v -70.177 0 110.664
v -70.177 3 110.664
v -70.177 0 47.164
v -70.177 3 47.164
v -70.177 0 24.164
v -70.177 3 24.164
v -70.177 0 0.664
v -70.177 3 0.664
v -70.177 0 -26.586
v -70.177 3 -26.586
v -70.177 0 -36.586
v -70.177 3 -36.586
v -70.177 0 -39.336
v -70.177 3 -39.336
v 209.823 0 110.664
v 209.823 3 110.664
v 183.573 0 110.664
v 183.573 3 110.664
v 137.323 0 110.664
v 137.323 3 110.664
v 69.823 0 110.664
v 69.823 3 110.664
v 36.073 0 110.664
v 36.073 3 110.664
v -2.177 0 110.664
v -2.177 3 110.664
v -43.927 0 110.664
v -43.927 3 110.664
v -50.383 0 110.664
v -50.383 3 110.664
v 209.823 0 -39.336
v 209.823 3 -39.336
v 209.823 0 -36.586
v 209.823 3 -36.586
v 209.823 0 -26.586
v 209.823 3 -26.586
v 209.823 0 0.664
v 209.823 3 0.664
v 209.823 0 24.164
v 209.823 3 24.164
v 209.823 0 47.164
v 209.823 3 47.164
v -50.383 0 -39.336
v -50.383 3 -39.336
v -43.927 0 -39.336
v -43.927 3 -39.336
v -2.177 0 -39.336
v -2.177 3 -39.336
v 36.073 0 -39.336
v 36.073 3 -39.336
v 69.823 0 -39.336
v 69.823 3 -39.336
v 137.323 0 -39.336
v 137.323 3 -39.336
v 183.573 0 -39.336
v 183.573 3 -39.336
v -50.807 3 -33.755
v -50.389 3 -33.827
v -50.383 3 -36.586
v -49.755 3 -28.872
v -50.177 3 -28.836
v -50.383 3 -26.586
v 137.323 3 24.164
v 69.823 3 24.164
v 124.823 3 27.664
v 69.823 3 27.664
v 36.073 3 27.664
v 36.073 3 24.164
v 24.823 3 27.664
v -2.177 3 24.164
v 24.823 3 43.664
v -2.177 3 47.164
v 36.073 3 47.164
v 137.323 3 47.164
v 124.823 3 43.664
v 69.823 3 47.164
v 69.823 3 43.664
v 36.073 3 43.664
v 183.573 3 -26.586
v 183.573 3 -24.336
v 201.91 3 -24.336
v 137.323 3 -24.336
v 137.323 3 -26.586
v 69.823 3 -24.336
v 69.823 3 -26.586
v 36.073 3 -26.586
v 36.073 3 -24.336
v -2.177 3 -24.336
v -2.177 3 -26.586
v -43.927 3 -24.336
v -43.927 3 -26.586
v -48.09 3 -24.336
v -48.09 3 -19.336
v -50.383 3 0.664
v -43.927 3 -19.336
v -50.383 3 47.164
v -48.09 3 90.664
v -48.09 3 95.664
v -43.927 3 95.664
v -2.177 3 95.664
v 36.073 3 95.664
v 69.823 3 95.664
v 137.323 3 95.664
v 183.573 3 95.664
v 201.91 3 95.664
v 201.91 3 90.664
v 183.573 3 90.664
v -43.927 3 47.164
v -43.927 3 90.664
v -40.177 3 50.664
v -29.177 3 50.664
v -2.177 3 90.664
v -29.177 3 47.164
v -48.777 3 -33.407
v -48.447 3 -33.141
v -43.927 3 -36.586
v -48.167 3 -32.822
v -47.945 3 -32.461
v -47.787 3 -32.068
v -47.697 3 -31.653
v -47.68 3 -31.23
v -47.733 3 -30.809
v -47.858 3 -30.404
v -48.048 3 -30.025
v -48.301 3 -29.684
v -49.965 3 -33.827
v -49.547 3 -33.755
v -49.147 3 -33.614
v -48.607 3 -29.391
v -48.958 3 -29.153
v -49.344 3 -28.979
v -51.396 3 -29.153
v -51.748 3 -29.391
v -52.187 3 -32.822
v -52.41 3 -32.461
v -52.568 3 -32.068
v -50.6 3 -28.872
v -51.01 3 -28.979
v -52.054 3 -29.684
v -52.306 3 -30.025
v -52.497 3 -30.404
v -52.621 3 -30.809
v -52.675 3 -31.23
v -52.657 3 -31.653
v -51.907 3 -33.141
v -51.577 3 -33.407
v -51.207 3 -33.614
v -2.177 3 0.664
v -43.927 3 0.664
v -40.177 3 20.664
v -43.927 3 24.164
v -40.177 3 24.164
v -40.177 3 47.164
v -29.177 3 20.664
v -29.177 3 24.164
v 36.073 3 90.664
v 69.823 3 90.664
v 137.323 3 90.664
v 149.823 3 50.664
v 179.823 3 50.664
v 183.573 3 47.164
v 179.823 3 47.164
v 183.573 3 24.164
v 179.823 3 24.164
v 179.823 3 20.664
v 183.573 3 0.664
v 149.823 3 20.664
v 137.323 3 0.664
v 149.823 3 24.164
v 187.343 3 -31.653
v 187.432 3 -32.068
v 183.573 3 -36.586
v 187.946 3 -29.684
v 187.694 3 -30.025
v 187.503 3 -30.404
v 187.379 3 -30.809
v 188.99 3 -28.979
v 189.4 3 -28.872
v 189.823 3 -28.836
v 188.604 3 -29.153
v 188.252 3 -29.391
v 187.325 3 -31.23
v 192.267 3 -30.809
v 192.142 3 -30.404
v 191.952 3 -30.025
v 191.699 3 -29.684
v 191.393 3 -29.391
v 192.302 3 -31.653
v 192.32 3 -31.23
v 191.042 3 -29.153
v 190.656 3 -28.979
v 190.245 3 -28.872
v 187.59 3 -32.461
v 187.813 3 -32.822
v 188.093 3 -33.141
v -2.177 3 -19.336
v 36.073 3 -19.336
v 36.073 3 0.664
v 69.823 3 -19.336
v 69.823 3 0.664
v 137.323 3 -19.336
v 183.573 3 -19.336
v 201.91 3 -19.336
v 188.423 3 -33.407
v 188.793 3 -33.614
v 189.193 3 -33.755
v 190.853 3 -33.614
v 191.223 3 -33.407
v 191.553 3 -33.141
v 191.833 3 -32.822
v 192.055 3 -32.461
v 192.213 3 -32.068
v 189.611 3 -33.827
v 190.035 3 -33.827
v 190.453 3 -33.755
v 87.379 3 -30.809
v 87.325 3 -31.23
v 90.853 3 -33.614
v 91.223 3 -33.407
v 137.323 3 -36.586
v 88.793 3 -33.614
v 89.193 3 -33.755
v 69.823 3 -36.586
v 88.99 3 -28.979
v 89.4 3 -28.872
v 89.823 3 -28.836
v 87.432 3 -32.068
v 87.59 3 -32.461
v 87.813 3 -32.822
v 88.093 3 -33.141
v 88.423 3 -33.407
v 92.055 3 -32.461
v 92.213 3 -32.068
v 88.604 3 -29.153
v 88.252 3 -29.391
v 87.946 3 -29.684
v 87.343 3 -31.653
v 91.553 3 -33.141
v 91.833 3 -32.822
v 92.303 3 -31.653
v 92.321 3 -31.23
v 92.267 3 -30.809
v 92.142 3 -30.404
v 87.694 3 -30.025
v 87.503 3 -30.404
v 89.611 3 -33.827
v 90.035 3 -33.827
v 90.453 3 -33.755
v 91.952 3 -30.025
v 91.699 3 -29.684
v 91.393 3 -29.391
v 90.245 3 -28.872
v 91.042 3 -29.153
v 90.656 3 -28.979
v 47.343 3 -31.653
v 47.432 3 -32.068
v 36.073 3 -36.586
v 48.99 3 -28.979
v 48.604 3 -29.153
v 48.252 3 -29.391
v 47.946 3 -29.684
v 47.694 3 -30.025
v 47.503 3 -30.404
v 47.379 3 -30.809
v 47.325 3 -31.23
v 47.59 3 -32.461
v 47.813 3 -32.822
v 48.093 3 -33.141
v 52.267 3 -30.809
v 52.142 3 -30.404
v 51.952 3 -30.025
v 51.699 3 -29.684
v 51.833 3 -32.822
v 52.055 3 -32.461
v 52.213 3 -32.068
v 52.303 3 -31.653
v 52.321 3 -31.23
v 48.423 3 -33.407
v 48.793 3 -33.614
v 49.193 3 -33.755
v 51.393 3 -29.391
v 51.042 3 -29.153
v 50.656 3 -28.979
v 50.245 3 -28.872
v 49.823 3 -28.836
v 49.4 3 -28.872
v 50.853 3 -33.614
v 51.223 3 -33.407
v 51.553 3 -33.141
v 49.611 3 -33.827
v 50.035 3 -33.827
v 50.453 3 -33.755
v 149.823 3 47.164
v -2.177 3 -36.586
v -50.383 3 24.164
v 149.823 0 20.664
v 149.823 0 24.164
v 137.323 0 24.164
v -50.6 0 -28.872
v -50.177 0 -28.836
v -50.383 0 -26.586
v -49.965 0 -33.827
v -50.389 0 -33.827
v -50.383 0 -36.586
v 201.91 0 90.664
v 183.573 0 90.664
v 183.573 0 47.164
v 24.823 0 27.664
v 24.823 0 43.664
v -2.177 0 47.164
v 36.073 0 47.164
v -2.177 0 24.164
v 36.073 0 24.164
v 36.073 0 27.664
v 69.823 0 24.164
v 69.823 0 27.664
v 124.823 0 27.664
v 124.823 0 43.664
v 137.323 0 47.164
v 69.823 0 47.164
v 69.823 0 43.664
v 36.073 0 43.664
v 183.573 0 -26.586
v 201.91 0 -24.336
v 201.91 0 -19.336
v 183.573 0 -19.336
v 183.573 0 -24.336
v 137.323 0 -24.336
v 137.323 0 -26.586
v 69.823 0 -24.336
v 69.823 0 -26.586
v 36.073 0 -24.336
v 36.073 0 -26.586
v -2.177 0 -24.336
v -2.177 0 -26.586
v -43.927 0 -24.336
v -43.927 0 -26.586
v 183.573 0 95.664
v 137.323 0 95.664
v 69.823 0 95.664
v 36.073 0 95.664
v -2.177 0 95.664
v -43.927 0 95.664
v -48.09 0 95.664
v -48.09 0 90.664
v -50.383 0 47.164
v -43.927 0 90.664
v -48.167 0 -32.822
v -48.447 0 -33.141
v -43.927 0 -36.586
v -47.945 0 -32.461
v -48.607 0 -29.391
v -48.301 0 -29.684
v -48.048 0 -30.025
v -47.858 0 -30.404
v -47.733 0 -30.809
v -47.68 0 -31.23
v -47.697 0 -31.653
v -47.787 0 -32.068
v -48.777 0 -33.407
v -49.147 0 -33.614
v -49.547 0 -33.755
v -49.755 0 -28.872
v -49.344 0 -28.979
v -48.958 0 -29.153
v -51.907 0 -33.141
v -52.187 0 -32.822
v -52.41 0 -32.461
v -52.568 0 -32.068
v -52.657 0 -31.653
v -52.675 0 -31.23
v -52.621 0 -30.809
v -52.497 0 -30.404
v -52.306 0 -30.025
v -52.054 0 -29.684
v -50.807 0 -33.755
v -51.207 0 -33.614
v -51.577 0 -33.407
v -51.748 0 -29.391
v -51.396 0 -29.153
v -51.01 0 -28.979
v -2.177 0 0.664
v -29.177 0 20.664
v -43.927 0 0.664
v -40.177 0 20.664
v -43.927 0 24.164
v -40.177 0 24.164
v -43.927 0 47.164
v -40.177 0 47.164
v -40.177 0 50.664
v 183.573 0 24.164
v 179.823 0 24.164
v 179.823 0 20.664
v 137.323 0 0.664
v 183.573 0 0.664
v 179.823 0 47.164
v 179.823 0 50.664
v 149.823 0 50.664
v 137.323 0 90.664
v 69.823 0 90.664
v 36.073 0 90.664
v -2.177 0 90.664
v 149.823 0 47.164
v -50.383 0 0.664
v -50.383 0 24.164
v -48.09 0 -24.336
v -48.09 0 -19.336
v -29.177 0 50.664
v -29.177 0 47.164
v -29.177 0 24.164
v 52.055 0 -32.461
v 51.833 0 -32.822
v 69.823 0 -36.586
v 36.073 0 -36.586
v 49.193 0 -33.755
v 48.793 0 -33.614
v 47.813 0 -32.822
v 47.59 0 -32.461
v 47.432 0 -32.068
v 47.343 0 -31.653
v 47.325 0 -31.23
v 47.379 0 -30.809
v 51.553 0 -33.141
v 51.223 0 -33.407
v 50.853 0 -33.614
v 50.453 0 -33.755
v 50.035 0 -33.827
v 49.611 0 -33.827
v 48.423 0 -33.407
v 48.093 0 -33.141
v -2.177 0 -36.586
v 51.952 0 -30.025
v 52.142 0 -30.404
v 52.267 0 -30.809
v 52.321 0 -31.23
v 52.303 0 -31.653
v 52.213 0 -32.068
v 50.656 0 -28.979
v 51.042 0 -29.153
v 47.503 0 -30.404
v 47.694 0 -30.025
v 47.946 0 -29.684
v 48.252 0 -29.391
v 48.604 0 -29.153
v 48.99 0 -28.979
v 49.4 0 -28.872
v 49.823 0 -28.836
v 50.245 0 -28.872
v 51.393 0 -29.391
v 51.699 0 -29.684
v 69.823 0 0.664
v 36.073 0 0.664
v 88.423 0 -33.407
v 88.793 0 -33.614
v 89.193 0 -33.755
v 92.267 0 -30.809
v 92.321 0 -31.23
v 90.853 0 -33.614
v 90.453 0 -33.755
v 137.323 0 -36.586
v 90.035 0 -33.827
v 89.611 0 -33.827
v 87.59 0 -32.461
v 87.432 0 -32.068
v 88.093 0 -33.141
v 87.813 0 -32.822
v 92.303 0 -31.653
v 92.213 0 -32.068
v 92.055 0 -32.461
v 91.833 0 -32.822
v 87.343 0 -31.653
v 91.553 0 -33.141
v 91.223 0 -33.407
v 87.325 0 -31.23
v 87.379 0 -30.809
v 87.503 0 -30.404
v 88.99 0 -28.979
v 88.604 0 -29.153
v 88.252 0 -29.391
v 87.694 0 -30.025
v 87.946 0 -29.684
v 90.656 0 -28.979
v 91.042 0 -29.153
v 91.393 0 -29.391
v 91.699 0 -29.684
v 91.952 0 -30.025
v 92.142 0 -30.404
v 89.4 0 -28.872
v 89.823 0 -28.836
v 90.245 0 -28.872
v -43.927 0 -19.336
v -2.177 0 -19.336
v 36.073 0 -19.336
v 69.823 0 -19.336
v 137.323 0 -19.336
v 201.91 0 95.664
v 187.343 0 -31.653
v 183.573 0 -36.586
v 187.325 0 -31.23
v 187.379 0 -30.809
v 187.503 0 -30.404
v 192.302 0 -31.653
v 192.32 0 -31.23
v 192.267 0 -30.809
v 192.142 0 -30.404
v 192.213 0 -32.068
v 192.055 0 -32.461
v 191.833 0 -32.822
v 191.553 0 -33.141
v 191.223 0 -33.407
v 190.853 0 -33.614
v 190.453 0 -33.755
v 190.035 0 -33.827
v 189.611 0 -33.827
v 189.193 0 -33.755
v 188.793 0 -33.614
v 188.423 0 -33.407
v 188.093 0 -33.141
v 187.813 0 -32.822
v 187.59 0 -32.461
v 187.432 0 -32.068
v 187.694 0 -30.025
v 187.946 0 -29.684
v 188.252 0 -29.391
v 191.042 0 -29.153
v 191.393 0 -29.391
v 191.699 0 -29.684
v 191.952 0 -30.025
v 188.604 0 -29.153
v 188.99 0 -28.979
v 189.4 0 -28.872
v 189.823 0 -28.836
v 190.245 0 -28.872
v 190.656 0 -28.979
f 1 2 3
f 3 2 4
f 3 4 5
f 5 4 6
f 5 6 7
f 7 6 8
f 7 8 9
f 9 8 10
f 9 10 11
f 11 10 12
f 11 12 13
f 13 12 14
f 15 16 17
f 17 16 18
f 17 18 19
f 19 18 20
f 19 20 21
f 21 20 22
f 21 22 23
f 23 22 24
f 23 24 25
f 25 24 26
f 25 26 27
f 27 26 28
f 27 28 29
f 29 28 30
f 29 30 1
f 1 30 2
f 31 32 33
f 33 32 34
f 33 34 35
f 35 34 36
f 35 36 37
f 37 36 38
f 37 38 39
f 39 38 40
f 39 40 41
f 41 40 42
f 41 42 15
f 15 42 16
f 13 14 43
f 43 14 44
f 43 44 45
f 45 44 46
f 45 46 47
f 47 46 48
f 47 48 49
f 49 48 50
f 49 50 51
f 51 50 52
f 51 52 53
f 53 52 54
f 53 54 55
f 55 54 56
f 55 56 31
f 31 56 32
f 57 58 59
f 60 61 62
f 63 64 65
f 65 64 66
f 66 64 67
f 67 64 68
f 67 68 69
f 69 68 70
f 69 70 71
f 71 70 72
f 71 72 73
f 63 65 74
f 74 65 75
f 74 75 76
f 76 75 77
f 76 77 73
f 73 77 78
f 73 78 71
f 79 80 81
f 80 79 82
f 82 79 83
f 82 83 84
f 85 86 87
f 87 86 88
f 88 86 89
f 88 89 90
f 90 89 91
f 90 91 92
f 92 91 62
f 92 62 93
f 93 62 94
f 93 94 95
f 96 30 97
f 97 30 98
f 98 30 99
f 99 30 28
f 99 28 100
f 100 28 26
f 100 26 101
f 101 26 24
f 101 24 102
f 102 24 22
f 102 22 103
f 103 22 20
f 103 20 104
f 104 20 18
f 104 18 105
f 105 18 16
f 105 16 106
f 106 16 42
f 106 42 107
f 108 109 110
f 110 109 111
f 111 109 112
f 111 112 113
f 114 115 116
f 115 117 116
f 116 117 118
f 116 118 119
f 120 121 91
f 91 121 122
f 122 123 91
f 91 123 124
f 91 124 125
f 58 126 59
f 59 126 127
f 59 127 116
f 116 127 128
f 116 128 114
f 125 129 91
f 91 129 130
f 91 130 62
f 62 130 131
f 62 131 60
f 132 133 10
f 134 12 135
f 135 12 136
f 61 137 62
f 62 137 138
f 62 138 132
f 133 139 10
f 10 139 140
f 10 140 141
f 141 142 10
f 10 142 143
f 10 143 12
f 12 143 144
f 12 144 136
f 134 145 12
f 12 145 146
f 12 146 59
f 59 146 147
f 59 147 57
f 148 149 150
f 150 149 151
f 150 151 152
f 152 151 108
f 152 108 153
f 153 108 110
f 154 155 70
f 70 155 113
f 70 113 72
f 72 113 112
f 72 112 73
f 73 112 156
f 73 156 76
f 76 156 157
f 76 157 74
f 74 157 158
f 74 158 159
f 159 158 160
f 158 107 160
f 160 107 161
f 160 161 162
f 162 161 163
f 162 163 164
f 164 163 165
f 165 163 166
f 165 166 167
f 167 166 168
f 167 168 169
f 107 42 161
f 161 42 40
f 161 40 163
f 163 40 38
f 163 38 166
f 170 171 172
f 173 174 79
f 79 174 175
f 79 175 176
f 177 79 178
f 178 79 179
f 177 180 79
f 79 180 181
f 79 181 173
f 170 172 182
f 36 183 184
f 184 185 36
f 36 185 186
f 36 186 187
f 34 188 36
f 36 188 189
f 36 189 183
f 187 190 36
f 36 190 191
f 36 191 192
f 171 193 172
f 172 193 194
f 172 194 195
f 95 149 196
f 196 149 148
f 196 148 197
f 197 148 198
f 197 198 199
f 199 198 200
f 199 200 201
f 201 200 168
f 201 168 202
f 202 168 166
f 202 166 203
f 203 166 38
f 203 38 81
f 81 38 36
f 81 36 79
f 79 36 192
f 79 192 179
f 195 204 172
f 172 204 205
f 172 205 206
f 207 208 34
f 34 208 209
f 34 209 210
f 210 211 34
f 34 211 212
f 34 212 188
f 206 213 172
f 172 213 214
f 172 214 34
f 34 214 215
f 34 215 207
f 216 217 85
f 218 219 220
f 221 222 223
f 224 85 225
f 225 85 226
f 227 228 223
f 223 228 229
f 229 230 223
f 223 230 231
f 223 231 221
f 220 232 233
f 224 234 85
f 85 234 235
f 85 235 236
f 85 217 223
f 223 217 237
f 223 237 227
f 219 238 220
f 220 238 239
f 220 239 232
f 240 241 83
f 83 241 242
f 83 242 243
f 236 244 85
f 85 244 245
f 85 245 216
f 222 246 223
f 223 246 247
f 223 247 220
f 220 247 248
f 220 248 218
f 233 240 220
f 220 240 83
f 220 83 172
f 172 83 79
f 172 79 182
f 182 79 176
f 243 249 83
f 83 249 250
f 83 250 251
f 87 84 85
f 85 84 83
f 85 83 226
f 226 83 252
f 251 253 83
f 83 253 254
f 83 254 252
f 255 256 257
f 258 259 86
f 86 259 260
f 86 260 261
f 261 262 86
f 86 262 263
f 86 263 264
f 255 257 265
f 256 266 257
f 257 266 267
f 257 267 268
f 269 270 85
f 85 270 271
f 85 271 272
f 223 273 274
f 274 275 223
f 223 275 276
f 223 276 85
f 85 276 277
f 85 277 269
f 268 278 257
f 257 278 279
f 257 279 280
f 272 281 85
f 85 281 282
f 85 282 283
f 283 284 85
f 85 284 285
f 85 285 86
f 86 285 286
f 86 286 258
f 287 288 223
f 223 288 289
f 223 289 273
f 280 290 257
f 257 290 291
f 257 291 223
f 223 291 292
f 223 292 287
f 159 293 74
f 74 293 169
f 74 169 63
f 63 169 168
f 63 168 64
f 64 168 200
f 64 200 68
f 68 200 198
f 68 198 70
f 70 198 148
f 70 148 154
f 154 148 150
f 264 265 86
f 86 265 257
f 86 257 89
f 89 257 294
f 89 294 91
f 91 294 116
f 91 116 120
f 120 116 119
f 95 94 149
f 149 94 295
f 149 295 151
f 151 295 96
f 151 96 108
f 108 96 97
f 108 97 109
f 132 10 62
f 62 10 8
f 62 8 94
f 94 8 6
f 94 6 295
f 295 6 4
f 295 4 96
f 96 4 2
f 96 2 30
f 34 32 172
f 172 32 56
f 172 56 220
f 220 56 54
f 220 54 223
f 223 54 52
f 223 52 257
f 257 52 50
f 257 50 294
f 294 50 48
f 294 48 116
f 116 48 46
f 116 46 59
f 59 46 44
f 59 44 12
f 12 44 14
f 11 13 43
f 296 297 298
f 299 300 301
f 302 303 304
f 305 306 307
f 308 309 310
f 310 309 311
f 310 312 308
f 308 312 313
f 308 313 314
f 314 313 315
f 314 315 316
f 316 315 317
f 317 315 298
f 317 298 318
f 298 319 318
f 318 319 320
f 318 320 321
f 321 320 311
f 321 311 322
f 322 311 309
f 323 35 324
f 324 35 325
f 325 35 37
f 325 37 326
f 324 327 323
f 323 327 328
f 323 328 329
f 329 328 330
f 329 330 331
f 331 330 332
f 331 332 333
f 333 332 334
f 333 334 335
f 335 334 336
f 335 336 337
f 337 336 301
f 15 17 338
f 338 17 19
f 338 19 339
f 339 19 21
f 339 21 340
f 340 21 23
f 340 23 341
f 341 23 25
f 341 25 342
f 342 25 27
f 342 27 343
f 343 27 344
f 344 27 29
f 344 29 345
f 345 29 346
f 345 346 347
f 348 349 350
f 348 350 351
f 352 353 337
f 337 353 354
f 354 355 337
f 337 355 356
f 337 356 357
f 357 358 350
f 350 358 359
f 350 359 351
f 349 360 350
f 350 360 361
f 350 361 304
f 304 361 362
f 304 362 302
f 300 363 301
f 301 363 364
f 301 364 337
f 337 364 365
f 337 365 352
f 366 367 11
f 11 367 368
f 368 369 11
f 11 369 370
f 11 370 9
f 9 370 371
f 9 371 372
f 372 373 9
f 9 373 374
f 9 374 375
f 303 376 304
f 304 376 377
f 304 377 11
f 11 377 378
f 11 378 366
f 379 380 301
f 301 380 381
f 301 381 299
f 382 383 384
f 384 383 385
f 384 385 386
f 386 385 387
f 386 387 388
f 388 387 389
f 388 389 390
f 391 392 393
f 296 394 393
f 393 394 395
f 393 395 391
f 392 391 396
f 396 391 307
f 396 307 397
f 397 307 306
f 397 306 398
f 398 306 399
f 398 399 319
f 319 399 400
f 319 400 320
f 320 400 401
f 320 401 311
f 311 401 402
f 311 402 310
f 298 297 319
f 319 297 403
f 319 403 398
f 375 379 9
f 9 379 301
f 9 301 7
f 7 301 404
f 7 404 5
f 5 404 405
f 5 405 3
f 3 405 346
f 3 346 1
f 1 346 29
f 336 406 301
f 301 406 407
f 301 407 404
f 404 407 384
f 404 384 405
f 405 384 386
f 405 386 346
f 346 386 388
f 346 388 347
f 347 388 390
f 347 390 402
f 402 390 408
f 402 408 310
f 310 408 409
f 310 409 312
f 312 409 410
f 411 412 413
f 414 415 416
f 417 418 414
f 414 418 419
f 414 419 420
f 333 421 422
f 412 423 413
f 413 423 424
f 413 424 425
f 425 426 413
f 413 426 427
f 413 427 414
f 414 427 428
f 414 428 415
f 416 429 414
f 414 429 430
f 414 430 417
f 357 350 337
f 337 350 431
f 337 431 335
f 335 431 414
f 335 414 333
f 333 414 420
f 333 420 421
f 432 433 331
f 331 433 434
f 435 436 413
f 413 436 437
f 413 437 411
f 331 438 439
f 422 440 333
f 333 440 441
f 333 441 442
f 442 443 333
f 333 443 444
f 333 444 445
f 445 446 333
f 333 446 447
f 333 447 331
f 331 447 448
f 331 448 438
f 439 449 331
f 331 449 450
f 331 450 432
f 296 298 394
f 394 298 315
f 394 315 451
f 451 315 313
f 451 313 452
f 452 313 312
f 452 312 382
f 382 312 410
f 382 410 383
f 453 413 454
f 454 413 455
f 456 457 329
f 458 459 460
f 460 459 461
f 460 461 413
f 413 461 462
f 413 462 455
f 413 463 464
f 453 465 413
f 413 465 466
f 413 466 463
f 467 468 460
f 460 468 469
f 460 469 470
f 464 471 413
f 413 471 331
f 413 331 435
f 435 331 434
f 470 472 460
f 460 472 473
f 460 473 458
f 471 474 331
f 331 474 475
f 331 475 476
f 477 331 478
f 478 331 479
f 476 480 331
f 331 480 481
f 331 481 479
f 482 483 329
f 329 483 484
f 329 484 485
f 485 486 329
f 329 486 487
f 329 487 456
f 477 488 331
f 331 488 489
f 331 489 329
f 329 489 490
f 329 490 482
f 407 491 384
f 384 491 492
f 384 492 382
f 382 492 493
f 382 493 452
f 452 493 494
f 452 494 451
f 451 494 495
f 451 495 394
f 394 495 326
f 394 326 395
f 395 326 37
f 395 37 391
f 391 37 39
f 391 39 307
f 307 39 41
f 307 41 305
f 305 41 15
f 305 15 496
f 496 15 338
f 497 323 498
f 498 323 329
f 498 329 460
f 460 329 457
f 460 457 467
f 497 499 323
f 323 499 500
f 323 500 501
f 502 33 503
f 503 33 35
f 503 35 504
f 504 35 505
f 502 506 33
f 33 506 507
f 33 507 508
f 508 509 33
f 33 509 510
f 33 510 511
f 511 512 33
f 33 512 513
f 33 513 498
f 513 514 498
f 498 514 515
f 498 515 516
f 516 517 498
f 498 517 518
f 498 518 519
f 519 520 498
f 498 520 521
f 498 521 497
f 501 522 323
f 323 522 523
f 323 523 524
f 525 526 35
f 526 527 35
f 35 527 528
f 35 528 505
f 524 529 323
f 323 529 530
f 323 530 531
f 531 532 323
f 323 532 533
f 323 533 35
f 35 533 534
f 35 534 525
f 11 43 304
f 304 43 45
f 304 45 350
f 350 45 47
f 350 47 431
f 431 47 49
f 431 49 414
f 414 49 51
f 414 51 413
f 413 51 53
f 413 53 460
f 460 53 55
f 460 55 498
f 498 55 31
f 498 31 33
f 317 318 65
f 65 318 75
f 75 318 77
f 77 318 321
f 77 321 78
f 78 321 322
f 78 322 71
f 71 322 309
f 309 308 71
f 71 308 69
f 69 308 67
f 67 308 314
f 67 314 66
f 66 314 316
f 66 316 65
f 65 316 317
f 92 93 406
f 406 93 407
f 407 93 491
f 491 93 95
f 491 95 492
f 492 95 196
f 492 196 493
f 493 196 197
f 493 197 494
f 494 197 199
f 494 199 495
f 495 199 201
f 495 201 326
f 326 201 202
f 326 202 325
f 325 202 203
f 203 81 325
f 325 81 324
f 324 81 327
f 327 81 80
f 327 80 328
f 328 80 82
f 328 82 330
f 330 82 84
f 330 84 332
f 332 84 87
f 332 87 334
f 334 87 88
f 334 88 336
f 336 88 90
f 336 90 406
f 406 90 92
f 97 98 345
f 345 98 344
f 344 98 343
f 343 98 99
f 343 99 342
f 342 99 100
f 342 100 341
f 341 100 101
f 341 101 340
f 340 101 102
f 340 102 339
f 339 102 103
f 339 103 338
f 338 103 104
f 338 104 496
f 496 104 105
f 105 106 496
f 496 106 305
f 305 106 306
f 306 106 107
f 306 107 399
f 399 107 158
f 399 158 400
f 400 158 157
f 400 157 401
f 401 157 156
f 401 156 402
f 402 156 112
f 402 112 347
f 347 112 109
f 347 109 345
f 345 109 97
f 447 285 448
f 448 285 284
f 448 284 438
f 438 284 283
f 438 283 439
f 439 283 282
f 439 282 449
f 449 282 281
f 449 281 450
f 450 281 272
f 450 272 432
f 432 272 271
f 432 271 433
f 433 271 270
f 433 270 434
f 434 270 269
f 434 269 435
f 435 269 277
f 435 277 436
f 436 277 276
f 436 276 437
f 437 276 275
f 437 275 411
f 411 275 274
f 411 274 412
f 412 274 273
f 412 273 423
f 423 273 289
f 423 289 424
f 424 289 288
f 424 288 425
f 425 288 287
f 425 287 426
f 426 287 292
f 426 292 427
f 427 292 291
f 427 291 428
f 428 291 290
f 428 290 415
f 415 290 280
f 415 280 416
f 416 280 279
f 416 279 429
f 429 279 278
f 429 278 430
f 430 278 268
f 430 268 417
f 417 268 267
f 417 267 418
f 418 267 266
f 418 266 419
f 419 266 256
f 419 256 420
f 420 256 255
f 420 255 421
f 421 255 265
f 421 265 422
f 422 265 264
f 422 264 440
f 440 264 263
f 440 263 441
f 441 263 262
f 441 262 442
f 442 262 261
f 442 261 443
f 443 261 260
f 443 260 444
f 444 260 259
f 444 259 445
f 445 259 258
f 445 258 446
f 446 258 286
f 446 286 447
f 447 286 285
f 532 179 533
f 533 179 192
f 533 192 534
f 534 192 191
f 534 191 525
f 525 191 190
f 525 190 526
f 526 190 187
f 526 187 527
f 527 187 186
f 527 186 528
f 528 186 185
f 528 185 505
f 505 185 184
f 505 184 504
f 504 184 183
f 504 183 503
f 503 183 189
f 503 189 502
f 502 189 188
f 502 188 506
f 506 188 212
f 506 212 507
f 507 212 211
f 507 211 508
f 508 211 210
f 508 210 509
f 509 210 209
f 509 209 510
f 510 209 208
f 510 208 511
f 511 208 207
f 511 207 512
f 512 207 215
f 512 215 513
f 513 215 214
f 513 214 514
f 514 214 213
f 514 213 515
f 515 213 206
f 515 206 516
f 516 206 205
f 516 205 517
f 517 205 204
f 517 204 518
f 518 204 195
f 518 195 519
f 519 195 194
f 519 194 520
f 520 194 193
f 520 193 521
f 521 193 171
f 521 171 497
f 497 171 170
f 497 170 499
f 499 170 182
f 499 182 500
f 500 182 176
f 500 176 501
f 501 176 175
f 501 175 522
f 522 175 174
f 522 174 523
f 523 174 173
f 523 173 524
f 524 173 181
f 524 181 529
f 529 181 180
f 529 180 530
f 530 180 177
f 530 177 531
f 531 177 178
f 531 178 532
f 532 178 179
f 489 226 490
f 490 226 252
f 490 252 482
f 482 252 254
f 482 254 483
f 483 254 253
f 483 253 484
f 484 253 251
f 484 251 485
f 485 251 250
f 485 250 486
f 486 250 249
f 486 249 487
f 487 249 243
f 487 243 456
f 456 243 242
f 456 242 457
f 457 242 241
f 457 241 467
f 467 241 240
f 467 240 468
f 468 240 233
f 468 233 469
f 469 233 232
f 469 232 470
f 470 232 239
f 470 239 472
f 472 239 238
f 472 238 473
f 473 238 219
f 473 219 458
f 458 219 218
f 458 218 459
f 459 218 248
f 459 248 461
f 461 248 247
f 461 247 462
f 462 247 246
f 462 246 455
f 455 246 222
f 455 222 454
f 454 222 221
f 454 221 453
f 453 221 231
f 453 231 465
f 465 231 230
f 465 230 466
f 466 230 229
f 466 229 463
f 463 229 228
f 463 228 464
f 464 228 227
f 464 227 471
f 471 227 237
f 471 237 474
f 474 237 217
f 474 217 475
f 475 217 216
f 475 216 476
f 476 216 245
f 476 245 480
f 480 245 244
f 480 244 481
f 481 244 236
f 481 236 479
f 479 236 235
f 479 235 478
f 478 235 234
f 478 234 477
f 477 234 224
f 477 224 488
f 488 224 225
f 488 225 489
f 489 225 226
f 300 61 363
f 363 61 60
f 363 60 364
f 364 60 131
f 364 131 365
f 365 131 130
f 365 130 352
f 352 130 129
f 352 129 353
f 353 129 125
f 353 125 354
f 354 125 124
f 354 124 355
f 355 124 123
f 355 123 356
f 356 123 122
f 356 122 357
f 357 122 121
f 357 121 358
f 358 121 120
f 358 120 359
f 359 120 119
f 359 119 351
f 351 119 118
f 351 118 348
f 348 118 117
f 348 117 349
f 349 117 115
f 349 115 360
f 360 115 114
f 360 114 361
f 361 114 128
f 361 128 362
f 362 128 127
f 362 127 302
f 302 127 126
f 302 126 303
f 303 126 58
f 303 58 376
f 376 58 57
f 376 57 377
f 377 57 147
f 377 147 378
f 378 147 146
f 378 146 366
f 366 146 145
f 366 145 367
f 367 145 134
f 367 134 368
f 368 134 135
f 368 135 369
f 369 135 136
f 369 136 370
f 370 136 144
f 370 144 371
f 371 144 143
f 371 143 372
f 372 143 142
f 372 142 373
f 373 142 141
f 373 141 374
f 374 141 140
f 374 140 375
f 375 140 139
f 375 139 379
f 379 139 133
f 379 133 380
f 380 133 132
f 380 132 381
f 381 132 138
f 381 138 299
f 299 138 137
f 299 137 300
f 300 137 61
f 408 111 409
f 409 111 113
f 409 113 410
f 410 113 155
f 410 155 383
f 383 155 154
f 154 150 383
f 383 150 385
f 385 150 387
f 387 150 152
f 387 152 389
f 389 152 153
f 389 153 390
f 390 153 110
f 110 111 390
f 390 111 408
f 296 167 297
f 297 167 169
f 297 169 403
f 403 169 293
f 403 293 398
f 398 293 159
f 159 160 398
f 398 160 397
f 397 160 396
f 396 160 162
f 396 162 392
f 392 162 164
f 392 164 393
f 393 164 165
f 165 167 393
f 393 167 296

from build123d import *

# Parameters (mm, degrees)
SKETCH_1_W          = 280
SKETCH_1_H          = 150
EXTRUDE_1_DEPTH     = 3
SKETCH_2_W          = 100
SKETCH_2_H          = 16
CUT_EXTRUDE_1_DEPTH = 3
SKETCH_3_W          = 250
SKETCH_3_H          = 5
CUT_EXTRUDE_2_DEPTH = 3
SKETCH_4_R          = 2.5
CUT_EXTRUDE_3_DEPTH = 3
SKETCH_5_W          = 30
SKETCH_5_H          = 30
SKETCH_5_W_2        = 11
CUT_EXTRUDE_4_DEPTH = 3


with BuildPart() as part:
    # 草图1 → 凸台-拉伸1 (new body)
    with BuildSketch(Plane(origin=(0, 0, 0), x_dir=(1, 0, 0), z_dir=(0, 1, 0))):
        with Locations((69.822750754, -35.664148933)):
            Rectangle(SKETCH_1_W, SKETCH_1_H)
    extrude(amount=EXTRUDE_1_DEPTH)

    # 草图2 → 切除-拉伸1 (cut)
    with BuildSketch(Plane(origin=(0, 3, 0), x_dir=(1, 0, 0), z_dir=(0, 1, 0))):
        with Locations((74.822750754, -35.664148933)):
            Rectangle(SKETCH_2_W, SKETCH_2_H)
    extrude(amount=-CUT_EXTRUDE_1_DEPTH, mode=Mode.SUBTRACT)

    # 草图3 → 切除-拉伸2 (cut)
    with BuildSketch(Plane.XZ):
        with Locations((76.910352346, 93.164148933)):
            Rectangle(SKETCH_3_W, SKETCH_3_H)
        with Locations((76.910352346, -21.835851067)):
            Rectangle(SKETCH_3_W, SKETCH_3_H)
    extrude(amount=-CUT_EXTRUDE_2_DEPTH, mode=Mode.SUBTRACT)

    # 草图4 → 切除-拉伸3 (cut)
    with BuildSketch(Plane(origin=(0, 3, 0), x_dir=(1, 0, 0), z_dir=(0, 1, 0))):
        with Locations(Location((-50.177249246, 31.335851067, 0), (0, 0, 270))):
            Circle(SKETCH_4_R)
        with Locations(Location((49.822750754, 31.335851067, 0), (0, 0, 270))):
            Circle(SKETCH_4_R)
        with Locations(Location((189.822750754, 31.335851067, 0), (0, 0, 270))):
            Circle(SKETCH_4_R)
        with Locations(Location((89.822750754, 31.335851067, 0), (0, 0, 270))):
            Circle(SKETCH_4_R)
    extrude(amount=-CUT_EXTRUDE_3_DEPTH, mode=Mode.SUBTRACT)

    # 草图5 → 切除-拉伸4 (cut)
    with BuildSketch(Plane.XZ):
        with Locations((164.822750754, 35.664148933)):
            Rectangle(SKETCH_5_W, SKETCH_5_H)
        with Locations((-34.677249246, 35.664148933)):
            Rectangle(SKETCH_5_W_2, SKETCH_5_H)
    extrude(amount=-CUT_EXTRUDE_4_DEPTH, mode=Mode.SUBTRACT)


solid = part.part
